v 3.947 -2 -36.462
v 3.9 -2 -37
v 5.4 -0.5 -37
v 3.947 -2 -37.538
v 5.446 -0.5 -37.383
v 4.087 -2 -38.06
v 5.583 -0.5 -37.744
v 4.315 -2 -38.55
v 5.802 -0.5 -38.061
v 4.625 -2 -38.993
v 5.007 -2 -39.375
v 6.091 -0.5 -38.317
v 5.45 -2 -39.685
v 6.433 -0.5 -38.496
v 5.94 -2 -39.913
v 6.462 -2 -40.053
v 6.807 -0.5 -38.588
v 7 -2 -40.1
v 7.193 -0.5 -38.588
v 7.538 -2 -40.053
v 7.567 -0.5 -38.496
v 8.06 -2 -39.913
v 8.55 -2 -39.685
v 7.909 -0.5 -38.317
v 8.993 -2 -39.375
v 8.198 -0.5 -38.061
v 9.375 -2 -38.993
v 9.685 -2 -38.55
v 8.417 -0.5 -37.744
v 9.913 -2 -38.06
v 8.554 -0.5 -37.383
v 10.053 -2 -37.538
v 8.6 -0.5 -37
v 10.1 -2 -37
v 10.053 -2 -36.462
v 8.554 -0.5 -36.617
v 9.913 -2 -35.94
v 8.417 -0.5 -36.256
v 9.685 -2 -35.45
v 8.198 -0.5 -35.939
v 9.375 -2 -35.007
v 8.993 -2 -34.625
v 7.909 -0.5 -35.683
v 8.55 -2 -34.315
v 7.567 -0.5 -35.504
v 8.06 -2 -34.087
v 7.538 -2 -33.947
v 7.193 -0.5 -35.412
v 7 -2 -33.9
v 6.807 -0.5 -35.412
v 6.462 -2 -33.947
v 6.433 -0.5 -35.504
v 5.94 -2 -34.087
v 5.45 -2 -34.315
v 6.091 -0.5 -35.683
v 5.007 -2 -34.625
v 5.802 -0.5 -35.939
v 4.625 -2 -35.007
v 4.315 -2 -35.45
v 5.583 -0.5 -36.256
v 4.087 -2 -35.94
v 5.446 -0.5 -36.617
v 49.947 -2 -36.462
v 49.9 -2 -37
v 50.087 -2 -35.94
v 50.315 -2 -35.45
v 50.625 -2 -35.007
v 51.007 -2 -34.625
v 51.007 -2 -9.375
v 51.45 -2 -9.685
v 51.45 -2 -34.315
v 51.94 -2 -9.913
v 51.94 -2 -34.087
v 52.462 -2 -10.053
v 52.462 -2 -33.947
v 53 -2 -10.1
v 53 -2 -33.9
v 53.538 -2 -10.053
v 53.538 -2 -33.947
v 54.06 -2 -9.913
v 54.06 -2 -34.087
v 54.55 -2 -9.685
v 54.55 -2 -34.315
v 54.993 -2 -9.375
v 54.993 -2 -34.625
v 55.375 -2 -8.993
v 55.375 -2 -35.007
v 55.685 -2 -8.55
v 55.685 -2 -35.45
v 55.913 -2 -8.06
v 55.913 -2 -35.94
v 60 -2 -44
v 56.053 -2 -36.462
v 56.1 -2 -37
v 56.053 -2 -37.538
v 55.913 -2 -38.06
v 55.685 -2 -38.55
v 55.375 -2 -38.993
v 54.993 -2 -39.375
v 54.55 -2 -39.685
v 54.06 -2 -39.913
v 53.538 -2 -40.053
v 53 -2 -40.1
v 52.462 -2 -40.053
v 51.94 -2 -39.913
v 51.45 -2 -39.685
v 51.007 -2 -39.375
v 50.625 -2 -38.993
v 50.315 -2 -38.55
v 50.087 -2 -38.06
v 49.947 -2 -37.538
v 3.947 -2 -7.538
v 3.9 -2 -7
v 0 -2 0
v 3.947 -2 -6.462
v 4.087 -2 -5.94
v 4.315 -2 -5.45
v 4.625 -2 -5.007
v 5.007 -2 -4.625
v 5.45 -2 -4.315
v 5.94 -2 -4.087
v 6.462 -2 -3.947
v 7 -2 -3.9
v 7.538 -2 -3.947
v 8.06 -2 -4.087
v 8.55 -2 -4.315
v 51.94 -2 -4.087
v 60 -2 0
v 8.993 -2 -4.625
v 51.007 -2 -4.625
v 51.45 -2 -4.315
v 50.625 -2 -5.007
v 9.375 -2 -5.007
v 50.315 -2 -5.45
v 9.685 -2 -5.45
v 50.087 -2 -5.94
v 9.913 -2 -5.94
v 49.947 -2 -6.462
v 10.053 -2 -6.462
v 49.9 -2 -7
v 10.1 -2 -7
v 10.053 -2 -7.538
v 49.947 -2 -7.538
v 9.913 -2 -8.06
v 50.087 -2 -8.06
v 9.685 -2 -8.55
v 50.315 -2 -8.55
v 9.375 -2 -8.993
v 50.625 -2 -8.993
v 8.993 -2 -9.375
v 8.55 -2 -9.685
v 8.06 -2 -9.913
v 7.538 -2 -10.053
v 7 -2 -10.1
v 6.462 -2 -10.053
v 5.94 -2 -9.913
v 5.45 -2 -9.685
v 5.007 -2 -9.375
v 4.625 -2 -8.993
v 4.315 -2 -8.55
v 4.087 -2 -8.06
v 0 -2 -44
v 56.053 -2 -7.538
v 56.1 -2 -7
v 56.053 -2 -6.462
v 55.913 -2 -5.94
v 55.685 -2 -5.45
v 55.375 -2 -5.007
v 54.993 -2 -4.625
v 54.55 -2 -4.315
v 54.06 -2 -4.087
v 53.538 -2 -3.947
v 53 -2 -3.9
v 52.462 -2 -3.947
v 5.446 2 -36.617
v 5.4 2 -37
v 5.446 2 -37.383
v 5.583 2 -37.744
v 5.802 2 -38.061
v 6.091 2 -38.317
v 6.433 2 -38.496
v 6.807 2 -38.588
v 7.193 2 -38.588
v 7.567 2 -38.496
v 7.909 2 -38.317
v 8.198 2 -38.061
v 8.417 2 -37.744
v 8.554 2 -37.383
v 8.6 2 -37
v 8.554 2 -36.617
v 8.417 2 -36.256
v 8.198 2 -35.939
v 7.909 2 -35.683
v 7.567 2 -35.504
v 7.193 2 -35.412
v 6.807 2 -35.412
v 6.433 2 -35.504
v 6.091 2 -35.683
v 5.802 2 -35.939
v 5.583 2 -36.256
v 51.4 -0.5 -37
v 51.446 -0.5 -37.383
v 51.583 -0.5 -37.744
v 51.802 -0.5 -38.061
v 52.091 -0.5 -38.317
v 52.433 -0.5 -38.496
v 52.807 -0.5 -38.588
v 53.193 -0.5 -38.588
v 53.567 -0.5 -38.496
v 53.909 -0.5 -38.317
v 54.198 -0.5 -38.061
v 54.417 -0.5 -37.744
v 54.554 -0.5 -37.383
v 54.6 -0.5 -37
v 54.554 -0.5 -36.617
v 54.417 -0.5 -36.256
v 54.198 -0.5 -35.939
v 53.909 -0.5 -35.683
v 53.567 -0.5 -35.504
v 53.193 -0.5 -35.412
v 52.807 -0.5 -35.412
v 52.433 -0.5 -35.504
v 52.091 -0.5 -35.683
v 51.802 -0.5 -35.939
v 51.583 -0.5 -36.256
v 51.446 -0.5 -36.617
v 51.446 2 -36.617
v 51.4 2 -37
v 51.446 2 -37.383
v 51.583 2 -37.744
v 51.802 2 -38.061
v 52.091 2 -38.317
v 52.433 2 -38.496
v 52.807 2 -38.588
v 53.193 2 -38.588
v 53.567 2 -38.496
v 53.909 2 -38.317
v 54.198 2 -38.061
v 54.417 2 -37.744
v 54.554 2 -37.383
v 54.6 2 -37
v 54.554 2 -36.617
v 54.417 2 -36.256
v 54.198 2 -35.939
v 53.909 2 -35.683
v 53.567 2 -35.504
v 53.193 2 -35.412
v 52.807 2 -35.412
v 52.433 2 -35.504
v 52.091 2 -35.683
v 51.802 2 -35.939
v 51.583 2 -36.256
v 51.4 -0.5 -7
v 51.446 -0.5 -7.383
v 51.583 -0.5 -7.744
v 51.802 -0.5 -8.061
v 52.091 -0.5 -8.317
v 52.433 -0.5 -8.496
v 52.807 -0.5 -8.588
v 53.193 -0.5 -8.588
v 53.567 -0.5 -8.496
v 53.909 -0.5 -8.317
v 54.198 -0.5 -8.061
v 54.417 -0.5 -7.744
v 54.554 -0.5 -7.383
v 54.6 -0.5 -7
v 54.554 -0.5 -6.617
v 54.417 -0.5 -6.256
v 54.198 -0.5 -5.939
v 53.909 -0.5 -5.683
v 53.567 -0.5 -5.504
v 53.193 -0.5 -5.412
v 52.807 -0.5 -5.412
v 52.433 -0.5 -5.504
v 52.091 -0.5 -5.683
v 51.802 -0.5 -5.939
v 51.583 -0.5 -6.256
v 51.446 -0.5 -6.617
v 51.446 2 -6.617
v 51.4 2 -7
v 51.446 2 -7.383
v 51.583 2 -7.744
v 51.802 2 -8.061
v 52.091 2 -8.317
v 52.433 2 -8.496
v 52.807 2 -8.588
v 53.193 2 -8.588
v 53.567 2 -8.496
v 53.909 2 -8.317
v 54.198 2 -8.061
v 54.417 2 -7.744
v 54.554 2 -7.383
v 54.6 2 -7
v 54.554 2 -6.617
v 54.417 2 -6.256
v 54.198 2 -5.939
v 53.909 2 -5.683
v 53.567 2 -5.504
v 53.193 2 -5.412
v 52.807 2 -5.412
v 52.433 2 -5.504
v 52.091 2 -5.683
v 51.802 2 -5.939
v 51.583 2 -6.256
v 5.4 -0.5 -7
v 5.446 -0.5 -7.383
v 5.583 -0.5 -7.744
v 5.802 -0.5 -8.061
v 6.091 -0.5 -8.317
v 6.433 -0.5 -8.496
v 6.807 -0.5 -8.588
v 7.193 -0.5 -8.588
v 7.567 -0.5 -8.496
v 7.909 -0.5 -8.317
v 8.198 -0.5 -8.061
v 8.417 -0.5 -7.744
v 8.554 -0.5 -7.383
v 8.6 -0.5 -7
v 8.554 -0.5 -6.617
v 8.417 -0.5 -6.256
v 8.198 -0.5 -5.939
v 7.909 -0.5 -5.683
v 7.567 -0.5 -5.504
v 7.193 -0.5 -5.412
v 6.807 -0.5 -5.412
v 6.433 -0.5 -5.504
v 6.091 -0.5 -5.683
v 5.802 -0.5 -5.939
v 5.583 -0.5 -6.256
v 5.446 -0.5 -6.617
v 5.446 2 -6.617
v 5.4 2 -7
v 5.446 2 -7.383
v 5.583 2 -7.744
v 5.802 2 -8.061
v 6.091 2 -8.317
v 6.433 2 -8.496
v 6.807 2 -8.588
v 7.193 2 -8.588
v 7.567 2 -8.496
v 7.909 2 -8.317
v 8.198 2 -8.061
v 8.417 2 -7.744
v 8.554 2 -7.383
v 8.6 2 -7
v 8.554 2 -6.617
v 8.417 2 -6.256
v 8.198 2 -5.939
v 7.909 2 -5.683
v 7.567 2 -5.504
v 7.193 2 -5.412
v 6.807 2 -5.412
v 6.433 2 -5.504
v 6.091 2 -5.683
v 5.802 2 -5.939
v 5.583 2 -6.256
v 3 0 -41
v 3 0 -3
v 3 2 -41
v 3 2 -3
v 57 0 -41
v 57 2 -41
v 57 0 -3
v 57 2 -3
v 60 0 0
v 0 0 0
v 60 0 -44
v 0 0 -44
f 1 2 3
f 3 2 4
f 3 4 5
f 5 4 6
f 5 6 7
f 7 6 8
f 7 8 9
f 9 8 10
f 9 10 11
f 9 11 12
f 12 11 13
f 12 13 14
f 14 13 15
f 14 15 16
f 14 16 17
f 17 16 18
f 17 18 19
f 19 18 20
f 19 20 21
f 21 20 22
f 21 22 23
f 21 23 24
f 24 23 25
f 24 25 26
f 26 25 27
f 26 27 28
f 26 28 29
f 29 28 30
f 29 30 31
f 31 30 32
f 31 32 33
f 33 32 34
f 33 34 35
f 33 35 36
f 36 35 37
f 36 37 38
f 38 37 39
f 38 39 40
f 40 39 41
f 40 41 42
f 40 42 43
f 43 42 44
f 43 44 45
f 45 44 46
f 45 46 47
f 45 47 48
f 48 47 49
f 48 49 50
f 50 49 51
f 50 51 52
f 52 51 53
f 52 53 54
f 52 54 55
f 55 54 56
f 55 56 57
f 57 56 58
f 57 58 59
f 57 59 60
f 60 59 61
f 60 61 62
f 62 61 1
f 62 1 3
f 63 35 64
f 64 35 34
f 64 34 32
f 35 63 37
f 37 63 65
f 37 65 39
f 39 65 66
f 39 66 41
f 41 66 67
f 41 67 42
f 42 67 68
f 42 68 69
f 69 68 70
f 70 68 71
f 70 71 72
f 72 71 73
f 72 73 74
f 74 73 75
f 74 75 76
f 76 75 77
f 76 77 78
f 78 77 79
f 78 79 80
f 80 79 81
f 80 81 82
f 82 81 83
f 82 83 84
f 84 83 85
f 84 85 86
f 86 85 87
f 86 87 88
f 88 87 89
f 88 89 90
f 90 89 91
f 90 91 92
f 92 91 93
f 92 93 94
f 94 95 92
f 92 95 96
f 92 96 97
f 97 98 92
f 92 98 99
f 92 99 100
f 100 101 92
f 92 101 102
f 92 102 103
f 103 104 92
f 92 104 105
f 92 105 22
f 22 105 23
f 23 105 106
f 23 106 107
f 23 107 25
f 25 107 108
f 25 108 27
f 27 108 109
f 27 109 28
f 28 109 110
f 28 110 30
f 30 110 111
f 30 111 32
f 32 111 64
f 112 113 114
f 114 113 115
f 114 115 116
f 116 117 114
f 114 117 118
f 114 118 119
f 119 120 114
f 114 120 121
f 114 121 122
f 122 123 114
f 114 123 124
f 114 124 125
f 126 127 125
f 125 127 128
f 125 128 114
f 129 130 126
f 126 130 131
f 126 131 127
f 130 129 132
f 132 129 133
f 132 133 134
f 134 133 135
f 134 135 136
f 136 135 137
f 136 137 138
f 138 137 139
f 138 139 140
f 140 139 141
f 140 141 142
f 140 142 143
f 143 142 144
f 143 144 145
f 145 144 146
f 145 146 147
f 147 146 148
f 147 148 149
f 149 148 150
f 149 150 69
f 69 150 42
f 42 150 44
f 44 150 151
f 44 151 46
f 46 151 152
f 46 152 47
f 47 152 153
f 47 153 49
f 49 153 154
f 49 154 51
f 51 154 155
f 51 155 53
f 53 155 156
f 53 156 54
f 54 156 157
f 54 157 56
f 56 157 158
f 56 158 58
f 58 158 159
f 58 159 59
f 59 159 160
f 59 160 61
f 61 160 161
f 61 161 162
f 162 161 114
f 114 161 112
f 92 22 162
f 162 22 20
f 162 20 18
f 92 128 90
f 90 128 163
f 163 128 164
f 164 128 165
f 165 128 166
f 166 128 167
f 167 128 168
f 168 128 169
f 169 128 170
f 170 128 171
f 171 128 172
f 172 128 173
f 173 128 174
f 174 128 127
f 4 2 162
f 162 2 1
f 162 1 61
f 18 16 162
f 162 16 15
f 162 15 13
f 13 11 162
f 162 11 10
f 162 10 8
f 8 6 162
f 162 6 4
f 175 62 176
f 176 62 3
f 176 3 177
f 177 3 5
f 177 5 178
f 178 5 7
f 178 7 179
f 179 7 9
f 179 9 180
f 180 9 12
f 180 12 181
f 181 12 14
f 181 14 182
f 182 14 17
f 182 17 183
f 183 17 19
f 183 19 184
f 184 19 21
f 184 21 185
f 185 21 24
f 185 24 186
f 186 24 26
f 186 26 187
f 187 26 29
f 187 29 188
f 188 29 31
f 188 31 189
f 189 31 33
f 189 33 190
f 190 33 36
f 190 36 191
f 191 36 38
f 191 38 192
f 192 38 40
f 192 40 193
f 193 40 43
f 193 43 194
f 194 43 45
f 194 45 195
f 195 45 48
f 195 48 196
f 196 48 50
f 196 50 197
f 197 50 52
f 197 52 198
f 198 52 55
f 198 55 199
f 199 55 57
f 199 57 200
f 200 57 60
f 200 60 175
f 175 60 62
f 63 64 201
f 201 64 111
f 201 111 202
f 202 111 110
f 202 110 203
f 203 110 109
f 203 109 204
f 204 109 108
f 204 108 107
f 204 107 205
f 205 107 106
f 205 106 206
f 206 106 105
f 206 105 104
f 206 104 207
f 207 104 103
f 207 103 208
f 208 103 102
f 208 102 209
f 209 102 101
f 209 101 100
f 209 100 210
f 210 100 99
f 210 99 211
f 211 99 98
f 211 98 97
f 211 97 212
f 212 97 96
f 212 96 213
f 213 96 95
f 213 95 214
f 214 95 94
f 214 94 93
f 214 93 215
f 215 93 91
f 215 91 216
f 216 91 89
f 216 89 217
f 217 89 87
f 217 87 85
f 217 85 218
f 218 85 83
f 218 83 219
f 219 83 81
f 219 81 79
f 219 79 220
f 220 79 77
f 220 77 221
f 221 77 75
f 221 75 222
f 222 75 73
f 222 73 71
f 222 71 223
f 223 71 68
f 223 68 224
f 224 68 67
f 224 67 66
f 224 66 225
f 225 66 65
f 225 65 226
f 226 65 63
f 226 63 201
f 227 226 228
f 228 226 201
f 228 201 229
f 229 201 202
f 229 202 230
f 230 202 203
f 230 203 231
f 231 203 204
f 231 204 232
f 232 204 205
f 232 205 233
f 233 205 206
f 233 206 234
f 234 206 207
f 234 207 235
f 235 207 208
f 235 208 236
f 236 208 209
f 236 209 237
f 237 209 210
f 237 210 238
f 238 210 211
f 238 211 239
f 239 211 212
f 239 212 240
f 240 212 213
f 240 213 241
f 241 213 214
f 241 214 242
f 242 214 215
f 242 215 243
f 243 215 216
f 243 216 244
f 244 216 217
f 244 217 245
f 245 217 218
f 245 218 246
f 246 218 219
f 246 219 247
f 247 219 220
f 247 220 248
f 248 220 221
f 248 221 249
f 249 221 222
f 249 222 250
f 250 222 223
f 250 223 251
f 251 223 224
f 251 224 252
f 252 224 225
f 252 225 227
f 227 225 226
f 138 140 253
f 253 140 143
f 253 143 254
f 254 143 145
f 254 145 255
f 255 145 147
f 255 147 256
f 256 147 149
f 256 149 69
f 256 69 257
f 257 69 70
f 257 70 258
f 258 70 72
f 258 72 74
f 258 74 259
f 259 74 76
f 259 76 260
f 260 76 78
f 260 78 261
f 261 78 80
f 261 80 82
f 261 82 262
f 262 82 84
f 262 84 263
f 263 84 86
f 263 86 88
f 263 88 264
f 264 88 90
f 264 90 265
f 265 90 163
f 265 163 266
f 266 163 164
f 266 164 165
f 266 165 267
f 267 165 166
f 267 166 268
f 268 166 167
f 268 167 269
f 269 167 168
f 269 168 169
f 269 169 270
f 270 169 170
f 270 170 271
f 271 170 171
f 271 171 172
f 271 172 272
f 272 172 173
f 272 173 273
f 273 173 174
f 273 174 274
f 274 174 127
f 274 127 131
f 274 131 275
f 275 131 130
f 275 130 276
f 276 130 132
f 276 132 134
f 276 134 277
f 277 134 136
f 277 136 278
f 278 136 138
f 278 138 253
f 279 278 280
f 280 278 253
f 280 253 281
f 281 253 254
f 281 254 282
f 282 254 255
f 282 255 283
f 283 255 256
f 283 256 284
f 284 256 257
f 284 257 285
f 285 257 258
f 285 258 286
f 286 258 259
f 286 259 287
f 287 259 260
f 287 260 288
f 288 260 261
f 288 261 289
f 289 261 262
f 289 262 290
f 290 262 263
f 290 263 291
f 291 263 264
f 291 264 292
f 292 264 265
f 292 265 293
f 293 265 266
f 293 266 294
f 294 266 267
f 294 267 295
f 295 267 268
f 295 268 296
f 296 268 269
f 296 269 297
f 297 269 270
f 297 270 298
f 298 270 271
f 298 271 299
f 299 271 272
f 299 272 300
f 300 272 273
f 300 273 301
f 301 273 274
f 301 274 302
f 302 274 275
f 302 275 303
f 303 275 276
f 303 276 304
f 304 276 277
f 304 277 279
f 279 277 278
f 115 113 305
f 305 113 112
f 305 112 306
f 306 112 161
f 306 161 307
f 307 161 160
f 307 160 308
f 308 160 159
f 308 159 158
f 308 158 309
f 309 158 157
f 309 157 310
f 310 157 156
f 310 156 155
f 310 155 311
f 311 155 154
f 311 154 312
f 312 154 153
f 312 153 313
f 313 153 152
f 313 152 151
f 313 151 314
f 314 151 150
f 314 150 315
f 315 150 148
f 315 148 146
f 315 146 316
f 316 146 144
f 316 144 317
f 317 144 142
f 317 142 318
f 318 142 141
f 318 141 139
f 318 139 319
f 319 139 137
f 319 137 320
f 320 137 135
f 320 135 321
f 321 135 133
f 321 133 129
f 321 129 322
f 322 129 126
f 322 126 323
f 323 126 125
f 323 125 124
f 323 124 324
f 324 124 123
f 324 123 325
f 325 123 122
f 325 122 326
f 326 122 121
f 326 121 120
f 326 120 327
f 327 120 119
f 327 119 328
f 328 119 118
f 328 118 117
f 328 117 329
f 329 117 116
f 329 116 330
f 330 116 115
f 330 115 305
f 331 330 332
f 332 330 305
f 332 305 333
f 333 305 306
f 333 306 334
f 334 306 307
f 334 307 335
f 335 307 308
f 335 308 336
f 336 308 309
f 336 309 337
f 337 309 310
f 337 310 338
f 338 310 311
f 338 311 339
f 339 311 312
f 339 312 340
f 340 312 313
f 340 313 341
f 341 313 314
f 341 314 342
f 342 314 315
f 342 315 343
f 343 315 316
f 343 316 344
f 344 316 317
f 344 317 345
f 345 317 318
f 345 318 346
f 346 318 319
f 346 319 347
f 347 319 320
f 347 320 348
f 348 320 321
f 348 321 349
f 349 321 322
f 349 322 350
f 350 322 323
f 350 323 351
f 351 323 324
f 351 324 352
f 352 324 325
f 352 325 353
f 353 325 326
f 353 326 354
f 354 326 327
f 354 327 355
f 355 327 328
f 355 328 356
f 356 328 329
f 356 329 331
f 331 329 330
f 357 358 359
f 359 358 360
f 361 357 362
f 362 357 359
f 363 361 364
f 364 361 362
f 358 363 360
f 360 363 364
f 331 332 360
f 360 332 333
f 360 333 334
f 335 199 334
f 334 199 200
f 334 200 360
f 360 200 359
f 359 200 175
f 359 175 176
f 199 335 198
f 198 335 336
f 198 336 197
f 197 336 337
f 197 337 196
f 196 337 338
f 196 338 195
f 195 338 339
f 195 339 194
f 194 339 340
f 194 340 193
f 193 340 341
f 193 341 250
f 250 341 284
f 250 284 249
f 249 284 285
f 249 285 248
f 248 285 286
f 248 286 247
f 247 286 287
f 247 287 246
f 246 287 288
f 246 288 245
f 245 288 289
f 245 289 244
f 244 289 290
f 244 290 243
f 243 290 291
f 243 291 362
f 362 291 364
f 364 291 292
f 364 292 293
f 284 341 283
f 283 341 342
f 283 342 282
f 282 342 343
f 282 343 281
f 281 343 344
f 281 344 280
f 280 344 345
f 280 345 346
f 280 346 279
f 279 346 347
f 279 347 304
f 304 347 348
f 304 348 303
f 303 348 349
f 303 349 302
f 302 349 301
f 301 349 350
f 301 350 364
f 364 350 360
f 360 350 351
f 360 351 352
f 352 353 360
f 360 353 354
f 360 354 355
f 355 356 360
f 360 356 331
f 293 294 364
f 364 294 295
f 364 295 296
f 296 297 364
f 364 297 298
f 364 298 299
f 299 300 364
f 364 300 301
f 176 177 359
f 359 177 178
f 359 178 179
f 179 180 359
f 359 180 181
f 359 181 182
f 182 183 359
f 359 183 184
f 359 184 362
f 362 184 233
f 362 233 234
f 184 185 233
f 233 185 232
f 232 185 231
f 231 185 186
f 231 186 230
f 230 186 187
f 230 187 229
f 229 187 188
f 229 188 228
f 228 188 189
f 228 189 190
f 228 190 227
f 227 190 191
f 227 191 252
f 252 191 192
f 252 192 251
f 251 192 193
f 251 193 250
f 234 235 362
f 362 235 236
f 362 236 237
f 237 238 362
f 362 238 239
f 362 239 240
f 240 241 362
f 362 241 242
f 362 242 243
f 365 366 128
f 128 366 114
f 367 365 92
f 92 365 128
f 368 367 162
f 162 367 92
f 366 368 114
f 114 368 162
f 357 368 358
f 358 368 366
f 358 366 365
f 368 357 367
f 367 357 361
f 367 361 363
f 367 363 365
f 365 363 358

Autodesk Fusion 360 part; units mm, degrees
sketch "Sketch1" plane through (0, 0, 0) normal (0, 1, 0) x (1, 0, 0)
  line L0 (0, 0) -> (60, 0)
  line L1 (60, 0) -> (60, 44)
  line L2 (60, 44) -> (0, 44)
  line L3 (0, 44) -> (0, 0)
  line L4 (3, 41) -> (57, 41)
  line L5 (57, 41) -> (57, 3)
  line L6 (57, 3) -> (3, 3)
  line L7 (3, 3) -> (3, 41)
  circle A0 centre (7, 37) radius 1.6
  circle A1 centre (53, 37) radius 1.6
  line L8 (3, 22) -> (57, 22)
  circle A2 centre (7, 7) radius 1.6
  circle A3 centre (53, 7) radius 1.6
  dimension "d1" = 60
  dimension "d2" = 44
  dimension "d3" = 54
  dimension "d4" = 38
  dimension "d9" = 3.2
  dimension "d10" = 3.2
extrude "Extrude1" add sketch "Sketch1" against normal blind 2 contours L0 L1 L2 L3 | L4 L5 L7 L8 | L5 L6 L7 L8 | A0 | A1 | A2 | A3
extrude "Extrude2" add sketch "Sketch1" along normal blind 2 contours L4 L5 L7 L8 | L5 L6 L7 L8 | A0 | A1 | A2 | A3
extrude "Extrude3" cut sketch "Sketch1" along normal blind 3 contours A0 | A1 | A2 | A3
extrude "Extrude4" cut sketch "Sketch1" against normal blind 8 contours A0 | A1 | A2 | A3
chamfer "Chamfer1" distance 0.75 angle 45 4 edges at (5.5083, -2, -6.4214) (5.5083, -2, -36.4214) (51.5083, -2, -36.4214) (51.5083, -2, -6.4214)
delete_face "DeleteFace1" 1 faces at (54.892, -1.75, -6.0888)
delete_face "DeleteFace2" 1 faces at (54.892, -1.75, -36.0888)
delete_face "DeleteFace3" 1 faces at (8.05, -1.75, -8.8187)
delete_face "DeleteFace4" 1 faces at (5.2649, -1.75, -38.183)
chamfer "Chamfer2" distance 1.5 angle 45 4 edges at (5.5083, -2, -7.5786) (51.5083, -2, -7.5786) (51.5083, -2, -37.5786) (5.5083, -2, -37.5786)
equation "d3 = 118 mm - 64 mm"
